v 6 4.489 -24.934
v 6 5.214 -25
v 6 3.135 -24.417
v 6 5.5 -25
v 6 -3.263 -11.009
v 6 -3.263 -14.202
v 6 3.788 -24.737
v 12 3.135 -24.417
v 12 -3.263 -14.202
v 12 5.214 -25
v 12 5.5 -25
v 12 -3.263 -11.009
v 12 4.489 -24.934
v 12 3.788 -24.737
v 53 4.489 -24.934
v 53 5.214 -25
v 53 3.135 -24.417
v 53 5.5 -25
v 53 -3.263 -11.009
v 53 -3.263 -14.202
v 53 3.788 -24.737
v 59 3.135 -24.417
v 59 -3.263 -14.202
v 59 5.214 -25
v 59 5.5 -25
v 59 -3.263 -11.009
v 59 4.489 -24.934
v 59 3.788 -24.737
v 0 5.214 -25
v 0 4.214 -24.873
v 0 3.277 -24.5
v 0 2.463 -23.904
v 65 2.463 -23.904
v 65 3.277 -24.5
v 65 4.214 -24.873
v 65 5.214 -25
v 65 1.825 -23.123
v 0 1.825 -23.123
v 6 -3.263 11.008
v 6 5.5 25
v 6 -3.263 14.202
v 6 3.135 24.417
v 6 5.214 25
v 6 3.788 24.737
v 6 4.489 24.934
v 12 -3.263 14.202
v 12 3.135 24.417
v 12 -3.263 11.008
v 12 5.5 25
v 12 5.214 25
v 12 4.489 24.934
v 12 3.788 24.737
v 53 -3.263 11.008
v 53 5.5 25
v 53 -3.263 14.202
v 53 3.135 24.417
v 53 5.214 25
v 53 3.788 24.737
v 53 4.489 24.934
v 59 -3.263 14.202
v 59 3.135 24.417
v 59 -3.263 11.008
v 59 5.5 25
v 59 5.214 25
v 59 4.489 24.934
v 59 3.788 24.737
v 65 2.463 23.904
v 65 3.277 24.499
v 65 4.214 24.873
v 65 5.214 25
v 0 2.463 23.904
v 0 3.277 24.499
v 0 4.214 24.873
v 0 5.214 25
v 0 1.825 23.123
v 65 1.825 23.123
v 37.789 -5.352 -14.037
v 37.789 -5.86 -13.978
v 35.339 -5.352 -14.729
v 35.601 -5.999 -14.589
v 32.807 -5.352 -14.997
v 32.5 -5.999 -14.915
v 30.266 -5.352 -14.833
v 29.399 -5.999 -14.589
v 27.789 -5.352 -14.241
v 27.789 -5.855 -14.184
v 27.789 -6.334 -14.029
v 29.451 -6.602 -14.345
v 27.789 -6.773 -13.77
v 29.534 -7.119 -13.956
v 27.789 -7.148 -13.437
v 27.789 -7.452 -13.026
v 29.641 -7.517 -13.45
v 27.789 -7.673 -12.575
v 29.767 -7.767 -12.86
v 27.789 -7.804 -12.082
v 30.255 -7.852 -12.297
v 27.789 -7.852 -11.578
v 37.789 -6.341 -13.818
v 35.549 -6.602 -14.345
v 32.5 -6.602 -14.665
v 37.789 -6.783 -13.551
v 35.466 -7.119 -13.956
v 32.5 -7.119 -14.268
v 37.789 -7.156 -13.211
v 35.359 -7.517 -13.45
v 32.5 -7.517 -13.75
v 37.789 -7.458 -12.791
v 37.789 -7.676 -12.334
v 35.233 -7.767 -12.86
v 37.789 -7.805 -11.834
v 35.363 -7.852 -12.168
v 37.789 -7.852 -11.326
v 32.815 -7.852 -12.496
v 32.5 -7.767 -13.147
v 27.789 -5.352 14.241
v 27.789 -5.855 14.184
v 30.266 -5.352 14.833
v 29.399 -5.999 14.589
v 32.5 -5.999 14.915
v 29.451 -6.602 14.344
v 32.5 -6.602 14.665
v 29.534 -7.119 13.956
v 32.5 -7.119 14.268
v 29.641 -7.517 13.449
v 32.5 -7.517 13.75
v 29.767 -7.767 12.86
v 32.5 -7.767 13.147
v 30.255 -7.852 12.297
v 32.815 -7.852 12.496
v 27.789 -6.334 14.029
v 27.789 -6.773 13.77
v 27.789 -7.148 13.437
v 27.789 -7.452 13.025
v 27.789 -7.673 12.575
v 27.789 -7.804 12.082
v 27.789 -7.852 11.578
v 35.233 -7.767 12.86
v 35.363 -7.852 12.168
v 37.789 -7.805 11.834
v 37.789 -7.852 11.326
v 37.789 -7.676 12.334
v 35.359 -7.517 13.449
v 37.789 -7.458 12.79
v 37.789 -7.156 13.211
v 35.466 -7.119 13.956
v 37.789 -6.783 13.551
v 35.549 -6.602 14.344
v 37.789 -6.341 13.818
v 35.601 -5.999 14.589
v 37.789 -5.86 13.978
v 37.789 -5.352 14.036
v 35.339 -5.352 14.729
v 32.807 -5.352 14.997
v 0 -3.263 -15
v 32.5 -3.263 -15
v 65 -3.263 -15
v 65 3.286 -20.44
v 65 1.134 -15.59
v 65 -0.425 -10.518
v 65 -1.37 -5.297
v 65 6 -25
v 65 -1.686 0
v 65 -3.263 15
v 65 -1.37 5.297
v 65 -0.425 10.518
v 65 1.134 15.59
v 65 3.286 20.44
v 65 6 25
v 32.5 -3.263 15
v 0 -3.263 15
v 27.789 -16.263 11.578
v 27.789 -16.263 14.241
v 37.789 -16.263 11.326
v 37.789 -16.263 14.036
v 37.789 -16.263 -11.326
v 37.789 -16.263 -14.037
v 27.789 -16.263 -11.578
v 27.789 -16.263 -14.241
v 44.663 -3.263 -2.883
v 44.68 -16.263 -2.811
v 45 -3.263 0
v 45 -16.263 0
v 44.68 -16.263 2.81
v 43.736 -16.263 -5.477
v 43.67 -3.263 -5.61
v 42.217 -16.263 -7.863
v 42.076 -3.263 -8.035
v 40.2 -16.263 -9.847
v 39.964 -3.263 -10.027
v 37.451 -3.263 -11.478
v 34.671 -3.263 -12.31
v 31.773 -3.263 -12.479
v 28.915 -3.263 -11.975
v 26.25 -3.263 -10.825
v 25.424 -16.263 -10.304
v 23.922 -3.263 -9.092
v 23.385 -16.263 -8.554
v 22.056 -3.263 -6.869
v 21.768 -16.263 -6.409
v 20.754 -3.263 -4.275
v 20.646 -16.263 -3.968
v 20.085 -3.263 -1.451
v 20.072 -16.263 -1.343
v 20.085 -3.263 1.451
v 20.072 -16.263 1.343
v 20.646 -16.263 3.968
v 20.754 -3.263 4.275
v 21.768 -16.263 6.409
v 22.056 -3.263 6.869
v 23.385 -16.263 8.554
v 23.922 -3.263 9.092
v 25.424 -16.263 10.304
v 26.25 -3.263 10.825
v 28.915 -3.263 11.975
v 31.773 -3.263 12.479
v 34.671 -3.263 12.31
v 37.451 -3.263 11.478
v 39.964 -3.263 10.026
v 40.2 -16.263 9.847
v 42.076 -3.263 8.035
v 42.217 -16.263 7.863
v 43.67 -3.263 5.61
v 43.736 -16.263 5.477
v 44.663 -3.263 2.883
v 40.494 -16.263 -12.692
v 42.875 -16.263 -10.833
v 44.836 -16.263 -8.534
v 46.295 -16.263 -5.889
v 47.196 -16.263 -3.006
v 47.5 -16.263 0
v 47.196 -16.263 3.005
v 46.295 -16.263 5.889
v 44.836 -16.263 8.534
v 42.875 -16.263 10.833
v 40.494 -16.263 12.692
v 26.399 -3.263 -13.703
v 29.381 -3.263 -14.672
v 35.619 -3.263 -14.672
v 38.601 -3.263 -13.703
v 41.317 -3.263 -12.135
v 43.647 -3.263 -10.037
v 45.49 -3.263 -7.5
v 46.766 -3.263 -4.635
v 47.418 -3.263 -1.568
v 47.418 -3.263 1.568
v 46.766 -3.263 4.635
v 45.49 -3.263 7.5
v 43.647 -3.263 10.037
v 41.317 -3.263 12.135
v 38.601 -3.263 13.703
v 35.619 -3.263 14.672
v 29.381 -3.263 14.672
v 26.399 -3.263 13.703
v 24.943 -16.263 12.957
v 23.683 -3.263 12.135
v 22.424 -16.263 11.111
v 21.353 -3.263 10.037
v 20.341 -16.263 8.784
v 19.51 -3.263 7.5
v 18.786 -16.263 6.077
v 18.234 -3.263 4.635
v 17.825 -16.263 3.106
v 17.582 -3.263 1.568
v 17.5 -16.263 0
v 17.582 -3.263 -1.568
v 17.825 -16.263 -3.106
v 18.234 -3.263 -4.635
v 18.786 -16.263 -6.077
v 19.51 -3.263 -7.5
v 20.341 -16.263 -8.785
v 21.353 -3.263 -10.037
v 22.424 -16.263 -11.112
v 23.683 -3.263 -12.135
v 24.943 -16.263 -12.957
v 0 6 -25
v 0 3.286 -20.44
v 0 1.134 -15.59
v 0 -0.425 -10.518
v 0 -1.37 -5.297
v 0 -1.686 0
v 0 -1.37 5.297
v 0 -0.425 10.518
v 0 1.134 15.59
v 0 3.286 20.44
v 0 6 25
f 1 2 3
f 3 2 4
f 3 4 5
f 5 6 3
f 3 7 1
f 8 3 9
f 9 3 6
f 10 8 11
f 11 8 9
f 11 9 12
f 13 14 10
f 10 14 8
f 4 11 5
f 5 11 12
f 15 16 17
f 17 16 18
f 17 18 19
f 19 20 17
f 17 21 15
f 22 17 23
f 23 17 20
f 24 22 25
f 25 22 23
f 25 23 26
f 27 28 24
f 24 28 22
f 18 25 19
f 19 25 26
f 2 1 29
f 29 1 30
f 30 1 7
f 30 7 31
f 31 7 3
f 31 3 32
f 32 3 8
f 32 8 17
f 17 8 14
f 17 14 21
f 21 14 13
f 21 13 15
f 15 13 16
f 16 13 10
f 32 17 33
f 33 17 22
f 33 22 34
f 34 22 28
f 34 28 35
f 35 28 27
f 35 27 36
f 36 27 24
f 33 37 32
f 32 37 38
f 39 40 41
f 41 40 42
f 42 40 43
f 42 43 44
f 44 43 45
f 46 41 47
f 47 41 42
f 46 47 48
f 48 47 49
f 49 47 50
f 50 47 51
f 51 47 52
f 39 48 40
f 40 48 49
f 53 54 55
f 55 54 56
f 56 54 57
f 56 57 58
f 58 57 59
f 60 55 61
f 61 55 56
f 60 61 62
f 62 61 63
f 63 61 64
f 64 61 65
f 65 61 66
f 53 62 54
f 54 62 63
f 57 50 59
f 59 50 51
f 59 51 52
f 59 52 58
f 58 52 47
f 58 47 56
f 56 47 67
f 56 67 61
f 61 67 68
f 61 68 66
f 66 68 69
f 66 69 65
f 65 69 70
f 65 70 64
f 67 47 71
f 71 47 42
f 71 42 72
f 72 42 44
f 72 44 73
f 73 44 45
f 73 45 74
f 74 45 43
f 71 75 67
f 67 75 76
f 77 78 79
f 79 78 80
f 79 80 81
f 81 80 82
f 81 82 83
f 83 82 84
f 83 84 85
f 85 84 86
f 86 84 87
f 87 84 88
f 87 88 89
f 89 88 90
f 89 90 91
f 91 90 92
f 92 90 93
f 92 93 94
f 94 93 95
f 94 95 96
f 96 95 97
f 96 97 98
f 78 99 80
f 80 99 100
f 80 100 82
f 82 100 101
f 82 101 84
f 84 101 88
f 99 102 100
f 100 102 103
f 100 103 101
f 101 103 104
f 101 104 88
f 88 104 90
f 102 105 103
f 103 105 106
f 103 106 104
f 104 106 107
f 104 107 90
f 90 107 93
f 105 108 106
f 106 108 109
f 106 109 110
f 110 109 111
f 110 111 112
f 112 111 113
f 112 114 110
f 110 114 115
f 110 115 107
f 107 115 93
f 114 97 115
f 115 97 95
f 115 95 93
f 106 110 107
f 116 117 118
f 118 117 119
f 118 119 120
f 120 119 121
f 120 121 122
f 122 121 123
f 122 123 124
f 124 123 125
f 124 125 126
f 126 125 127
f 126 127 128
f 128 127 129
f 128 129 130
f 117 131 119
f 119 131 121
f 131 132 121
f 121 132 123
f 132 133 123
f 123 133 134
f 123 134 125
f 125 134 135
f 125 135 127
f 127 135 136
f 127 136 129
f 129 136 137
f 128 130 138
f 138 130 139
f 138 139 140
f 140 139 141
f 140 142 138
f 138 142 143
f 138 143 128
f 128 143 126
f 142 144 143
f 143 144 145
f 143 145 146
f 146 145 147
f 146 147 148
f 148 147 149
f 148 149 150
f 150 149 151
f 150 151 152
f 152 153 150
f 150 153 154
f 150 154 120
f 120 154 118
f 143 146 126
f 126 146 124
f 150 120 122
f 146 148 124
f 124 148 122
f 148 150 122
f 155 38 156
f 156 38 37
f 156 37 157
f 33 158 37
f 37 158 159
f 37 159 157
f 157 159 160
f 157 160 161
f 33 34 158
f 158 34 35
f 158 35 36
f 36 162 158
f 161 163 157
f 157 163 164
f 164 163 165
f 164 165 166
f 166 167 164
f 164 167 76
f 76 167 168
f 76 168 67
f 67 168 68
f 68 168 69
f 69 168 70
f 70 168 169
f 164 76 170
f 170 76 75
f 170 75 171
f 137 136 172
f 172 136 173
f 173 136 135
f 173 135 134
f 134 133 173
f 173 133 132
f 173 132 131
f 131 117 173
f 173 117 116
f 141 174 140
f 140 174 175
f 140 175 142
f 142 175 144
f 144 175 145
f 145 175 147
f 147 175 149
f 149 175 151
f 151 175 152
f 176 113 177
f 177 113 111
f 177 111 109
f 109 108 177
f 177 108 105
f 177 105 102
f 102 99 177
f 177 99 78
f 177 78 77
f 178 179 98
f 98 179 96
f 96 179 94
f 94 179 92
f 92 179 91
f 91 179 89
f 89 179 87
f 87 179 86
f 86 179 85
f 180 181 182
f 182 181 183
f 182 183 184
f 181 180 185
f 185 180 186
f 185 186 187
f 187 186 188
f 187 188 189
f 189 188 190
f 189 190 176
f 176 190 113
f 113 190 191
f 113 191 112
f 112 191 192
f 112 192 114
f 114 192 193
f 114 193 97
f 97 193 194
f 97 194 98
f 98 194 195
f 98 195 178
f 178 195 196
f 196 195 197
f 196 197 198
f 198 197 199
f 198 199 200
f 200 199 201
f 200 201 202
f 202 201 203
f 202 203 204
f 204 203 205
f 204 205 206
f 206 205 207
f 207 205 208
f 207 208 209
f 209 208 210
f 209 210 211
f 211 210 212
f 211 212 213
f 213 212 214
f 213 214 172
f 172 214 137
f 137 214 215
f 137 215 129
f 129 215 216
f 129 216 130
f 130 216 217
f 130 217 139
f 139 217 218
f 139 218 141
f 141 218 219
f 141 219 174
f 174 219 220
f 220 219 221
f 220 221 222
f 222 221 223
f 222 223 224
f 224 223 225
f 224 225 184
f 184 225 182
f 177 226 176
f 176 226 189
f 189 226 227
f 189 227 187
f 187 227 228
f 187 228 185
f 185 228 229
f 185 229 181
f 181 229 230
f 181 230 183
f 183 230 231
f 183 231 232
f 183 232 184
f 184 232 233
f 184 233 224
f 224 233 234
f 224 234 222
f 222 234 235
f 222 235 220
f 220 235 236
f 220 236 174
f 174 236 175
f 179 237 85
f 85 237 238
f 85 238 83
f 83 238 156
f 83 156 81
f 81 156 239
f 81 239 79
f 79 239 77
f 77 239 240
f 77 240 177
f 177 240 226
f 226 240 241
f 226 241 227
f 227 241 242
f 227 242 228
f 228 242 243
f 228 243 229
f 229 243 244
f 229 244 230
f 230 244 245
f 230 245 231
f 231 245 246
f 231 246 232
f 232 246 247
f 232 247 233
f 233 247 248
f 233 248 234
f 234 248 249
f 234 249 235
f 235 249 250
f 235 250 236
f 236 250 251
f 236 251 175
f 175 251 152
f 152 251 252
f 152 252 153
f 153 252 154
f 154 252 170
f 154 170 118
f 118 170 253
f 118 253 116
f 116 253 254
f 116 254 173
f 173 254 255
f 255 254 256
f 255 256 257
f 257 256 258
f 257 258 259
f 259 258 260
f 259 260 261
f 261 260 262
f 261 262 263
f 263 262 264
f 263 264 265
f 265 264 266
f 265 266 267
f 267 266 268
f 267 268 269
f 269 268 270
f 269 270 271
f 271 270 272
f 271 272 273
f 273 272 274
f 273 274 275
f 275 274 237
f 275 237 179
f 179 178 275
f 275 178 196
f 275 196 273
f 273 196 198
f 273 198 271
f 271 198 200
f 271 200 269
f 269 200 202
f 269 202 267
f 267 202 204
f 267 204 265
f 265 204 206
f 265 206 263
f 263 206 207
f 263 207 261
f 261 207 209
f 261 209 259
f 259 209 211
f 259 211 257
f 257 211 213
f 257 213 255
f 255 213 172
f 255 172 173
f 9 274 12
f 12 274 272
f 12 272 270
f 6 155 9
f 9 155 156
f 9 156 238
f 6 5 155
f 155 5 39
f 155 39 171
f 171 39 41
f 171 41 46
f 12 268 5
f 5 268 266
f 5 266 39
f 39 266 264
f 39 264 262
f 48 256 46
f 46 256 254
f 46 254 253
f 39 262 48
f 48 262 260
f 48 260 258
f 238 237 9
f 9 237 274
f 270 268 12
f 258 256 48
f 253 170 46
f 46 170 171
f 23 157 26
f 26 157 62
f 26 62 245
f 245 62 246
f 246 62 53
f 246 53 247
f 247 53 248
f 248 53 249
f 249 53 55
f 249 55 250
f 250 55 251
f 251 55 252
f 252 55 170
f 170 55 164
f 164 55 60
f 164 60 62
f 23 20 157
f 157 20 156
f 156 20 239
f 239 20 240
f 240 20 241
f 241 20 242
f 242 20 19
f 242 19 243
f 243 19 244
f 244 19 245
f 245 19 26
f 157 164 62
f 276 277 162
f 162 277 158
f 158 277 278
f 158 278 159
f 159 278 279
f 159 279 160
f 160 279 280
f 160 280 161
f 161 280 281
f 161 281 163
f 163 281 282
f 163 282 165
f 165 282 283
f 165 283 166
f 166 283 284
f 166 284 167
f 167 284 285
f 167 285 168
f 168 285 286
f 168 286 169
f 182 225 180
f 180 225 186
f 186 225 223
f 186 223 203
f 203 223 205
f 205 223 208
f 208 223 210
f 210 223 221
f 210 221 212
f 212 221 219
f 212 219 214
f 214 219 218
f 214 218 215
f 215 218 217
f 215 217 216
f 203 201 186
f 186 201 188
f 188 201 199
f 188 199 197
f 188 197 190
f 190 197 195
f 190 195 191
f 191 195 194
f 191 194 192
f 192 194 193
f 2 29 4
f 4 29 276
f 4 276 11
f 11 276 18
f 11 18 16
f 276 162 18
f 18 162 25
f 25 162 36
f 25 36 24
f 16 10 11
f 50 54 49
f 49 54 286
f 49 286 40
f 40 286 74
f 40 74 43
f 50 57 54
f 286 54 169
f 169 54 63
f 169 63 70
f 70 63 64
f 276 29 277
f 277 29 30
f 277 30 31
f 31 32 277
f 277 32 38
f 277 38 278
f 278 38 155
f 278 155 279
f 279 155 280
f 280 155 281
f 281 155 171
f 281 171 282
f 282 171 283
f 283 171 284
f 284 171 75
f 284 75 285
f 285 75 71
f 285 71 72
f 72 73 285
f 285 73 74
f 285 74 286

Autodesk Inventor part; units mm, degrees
ref_plane "YZ Plane" through (0, 0, 0) normal (1, 0, 0) x (0, 1, 0)
ref_plane "XZ Plane" through (0, 0, 0) normal (0, 1, 0) x (-1, 0, 0)
ref_plane "XY Plane" through (0, 0, 0) normal (0, 0, 1) x (1, 0, 0)
sketch "Sketch1" plane through (0, 0, 0) normal (1, 0, 0) x (0, 1, 0)
  line L0 (-6, 25) -> (6, 25)
  line L1 (6, 25) -> (6, -25)
  line L2 (6, -25) -> (-6, -25)
  line L3 (-6, -25) -> (-6, 25)
  dimension "d0" = 12
  dimension "d1" = 50
extrude "Extrusion1" add sketch "Sketch1" along normal blind 65
sketch "Sketch2" plane through (65, 0, 0) normal (1, 0, 0) x (0, 0, -1)
  line L0 (-25, 6) -> (-25, -6) projected
  line L1 (25, -6) -> (25, 6) projected
  line L2 (-25, 6) -> (25, 6)
  arc A0 (-25, 6) -> (25, 6) centre (0, 42.8137) ccw
  line L3 (-25, -6) -> (25, -6) projected
  line L4 (25, 3) -> (25, -6)
  line L5 (25, -6) -> (-25, -6)
  line L6 (-25, -6) -> (-25, 3)
  line L7 (0.0001, -3.2634) -> (15.0001, -3.2634)
  line L8 (15.0001, -3.2634) -> (25, 3)
  line L9 (0.0001, -3.2634) -> (-14.9999, -3.2634)
  line L10 (-14.9999, -3.2634) -> (-25, 3)
  point P0 (0, 0)
  dimension "d4" = 44.5
  dimension "d9" = 15.351
  dimension "d10" = 15.3508
extrude "Extrusion2" cut sketch "Sketch2" against normal through all contours L2 A0 | L10 L9 L7 L8 L1 L3 L0
sketch "Sketch3" plane through (65, -3.2634, -15.0001) normal (0, -1, 0) x (1, 0, 0)
  circle A0 centre (-32.5, 15) radius 15
  circle A1 centre (-32.5, 15) radius 12.5
  point P0 (-65, 15.0001)
  dimension "d14" = 25
extrude "Extrusion3" add sketch "Sketch3" along normal blind 13
sketch "Sketch4" plane through (0, 3, 25) normal (0, 0, 1) x (1, 0, 0)
  line L0 (37.7891, -20.8517) -> (27.7891, -20.8517)
  line L1 (27.7891, -20.8517) -> (27.7891, -10.8517)
  line L2 (27.7891, -10.8517) -> (37.7891, -10.8517)
  line L3 (37.7891, -10.8517) -> (37.7891, -20.8517)
  point P0 (0, -3)
  dimension "d18" = 10
  dimension "d19" = 10
extrude "Extrusion4" cut sketch "Sketch4" against normal through all
sketch "Sketch5" plane through (0, 3, 25) normal (0, 0, 1) x (1, 0, 0)
  line L0 (6, 0.5) -> (12, 0.5)
  line L1 (12, 0.5) -> (12, 2.5)
  line L2 (12, 2.5) -> (6, 2.5)
  line L3 (6, 2.5) -> (6, 0.5)
  line L4 (59, 0.5) -> (53, 0.5)
  line L5 (53, 0.5) -> (53, 2.5)
  line L6 (53, 2.5) -> (59, 2.5)
  line L7 (59, 2.5) -> (59, 0.5)
  point P0 (0, -3)
  point P1 (0, 0)
  point P2 (65, 0)
  dimension "d25" = 6
  dimension "d26" = 2
  dimension "d27" = 6
  dimension "d28" = 2
fillet "Fillet1" radius 4 2 edges at (32.5, 3, 25) (32.5, 3, -25)
fillet "Fillet2" radius 2.5 2 edges at (32.8066, -7.8517, -14.997) (32.8066, -7.8517, 14.9967)
sketch "Sketch10" plane through (65, 0, 0) normal (1, 0, 0) x (0, 0, -1)
  line L0 (-30.7469, 6.3774) -> (-5.3359, -9.5383)
  line L1 (-23.1232, 1.8245) -> (-14.9999, -3.2634) projected
  point P0 (0, 0)
sweep "Sweep3" cut profiles "Sketch5" path "Sketch10" path curves L0
sketch "Sketch11" plane through (65, 6, -25) normal (0, 0, -1) x (-1, 0, 0)
  line L0 (59, -0.5) -> (53, -0.5) projected
  line L1 (59, -0.5) -> (53, -0.5)
  line L2 (53, -0.5) -> (53, -2.5)
  line L3 (53, -2.5) -> (59, -2.5)
  line L4 (59, -2.5) -> (59, -0.5)
  line L5 (6, -0.5) -> (12, -0.5)
  line L6 (12, -0.5) -> (12, -2.5)
  line L7 (12, -2.5) -> (6, -2.5)
  line L8 (6, -2.5) -> (6, -0.5)
  point P0 (65, -6)
  point P1 (65, 0)
  point P2 (0, 0)
  dimension "d54" = 2
sketch "Sketch12" plane through (0, 0, 0) normal (-1, 0, 0) x (0, 0, 1)
  line L0 (-31.1671, 7.3521) -> (-3.1044, -10.2248)
  line L1 (-23.1233, 1.8245) -> (-15.0001, -3.2634) projected
  point P0 (0, 0)
sweep "Sweep4" cut profiles "Sketch11" path "Sketch12" path curves L0
properties part number "Cup_platform"
